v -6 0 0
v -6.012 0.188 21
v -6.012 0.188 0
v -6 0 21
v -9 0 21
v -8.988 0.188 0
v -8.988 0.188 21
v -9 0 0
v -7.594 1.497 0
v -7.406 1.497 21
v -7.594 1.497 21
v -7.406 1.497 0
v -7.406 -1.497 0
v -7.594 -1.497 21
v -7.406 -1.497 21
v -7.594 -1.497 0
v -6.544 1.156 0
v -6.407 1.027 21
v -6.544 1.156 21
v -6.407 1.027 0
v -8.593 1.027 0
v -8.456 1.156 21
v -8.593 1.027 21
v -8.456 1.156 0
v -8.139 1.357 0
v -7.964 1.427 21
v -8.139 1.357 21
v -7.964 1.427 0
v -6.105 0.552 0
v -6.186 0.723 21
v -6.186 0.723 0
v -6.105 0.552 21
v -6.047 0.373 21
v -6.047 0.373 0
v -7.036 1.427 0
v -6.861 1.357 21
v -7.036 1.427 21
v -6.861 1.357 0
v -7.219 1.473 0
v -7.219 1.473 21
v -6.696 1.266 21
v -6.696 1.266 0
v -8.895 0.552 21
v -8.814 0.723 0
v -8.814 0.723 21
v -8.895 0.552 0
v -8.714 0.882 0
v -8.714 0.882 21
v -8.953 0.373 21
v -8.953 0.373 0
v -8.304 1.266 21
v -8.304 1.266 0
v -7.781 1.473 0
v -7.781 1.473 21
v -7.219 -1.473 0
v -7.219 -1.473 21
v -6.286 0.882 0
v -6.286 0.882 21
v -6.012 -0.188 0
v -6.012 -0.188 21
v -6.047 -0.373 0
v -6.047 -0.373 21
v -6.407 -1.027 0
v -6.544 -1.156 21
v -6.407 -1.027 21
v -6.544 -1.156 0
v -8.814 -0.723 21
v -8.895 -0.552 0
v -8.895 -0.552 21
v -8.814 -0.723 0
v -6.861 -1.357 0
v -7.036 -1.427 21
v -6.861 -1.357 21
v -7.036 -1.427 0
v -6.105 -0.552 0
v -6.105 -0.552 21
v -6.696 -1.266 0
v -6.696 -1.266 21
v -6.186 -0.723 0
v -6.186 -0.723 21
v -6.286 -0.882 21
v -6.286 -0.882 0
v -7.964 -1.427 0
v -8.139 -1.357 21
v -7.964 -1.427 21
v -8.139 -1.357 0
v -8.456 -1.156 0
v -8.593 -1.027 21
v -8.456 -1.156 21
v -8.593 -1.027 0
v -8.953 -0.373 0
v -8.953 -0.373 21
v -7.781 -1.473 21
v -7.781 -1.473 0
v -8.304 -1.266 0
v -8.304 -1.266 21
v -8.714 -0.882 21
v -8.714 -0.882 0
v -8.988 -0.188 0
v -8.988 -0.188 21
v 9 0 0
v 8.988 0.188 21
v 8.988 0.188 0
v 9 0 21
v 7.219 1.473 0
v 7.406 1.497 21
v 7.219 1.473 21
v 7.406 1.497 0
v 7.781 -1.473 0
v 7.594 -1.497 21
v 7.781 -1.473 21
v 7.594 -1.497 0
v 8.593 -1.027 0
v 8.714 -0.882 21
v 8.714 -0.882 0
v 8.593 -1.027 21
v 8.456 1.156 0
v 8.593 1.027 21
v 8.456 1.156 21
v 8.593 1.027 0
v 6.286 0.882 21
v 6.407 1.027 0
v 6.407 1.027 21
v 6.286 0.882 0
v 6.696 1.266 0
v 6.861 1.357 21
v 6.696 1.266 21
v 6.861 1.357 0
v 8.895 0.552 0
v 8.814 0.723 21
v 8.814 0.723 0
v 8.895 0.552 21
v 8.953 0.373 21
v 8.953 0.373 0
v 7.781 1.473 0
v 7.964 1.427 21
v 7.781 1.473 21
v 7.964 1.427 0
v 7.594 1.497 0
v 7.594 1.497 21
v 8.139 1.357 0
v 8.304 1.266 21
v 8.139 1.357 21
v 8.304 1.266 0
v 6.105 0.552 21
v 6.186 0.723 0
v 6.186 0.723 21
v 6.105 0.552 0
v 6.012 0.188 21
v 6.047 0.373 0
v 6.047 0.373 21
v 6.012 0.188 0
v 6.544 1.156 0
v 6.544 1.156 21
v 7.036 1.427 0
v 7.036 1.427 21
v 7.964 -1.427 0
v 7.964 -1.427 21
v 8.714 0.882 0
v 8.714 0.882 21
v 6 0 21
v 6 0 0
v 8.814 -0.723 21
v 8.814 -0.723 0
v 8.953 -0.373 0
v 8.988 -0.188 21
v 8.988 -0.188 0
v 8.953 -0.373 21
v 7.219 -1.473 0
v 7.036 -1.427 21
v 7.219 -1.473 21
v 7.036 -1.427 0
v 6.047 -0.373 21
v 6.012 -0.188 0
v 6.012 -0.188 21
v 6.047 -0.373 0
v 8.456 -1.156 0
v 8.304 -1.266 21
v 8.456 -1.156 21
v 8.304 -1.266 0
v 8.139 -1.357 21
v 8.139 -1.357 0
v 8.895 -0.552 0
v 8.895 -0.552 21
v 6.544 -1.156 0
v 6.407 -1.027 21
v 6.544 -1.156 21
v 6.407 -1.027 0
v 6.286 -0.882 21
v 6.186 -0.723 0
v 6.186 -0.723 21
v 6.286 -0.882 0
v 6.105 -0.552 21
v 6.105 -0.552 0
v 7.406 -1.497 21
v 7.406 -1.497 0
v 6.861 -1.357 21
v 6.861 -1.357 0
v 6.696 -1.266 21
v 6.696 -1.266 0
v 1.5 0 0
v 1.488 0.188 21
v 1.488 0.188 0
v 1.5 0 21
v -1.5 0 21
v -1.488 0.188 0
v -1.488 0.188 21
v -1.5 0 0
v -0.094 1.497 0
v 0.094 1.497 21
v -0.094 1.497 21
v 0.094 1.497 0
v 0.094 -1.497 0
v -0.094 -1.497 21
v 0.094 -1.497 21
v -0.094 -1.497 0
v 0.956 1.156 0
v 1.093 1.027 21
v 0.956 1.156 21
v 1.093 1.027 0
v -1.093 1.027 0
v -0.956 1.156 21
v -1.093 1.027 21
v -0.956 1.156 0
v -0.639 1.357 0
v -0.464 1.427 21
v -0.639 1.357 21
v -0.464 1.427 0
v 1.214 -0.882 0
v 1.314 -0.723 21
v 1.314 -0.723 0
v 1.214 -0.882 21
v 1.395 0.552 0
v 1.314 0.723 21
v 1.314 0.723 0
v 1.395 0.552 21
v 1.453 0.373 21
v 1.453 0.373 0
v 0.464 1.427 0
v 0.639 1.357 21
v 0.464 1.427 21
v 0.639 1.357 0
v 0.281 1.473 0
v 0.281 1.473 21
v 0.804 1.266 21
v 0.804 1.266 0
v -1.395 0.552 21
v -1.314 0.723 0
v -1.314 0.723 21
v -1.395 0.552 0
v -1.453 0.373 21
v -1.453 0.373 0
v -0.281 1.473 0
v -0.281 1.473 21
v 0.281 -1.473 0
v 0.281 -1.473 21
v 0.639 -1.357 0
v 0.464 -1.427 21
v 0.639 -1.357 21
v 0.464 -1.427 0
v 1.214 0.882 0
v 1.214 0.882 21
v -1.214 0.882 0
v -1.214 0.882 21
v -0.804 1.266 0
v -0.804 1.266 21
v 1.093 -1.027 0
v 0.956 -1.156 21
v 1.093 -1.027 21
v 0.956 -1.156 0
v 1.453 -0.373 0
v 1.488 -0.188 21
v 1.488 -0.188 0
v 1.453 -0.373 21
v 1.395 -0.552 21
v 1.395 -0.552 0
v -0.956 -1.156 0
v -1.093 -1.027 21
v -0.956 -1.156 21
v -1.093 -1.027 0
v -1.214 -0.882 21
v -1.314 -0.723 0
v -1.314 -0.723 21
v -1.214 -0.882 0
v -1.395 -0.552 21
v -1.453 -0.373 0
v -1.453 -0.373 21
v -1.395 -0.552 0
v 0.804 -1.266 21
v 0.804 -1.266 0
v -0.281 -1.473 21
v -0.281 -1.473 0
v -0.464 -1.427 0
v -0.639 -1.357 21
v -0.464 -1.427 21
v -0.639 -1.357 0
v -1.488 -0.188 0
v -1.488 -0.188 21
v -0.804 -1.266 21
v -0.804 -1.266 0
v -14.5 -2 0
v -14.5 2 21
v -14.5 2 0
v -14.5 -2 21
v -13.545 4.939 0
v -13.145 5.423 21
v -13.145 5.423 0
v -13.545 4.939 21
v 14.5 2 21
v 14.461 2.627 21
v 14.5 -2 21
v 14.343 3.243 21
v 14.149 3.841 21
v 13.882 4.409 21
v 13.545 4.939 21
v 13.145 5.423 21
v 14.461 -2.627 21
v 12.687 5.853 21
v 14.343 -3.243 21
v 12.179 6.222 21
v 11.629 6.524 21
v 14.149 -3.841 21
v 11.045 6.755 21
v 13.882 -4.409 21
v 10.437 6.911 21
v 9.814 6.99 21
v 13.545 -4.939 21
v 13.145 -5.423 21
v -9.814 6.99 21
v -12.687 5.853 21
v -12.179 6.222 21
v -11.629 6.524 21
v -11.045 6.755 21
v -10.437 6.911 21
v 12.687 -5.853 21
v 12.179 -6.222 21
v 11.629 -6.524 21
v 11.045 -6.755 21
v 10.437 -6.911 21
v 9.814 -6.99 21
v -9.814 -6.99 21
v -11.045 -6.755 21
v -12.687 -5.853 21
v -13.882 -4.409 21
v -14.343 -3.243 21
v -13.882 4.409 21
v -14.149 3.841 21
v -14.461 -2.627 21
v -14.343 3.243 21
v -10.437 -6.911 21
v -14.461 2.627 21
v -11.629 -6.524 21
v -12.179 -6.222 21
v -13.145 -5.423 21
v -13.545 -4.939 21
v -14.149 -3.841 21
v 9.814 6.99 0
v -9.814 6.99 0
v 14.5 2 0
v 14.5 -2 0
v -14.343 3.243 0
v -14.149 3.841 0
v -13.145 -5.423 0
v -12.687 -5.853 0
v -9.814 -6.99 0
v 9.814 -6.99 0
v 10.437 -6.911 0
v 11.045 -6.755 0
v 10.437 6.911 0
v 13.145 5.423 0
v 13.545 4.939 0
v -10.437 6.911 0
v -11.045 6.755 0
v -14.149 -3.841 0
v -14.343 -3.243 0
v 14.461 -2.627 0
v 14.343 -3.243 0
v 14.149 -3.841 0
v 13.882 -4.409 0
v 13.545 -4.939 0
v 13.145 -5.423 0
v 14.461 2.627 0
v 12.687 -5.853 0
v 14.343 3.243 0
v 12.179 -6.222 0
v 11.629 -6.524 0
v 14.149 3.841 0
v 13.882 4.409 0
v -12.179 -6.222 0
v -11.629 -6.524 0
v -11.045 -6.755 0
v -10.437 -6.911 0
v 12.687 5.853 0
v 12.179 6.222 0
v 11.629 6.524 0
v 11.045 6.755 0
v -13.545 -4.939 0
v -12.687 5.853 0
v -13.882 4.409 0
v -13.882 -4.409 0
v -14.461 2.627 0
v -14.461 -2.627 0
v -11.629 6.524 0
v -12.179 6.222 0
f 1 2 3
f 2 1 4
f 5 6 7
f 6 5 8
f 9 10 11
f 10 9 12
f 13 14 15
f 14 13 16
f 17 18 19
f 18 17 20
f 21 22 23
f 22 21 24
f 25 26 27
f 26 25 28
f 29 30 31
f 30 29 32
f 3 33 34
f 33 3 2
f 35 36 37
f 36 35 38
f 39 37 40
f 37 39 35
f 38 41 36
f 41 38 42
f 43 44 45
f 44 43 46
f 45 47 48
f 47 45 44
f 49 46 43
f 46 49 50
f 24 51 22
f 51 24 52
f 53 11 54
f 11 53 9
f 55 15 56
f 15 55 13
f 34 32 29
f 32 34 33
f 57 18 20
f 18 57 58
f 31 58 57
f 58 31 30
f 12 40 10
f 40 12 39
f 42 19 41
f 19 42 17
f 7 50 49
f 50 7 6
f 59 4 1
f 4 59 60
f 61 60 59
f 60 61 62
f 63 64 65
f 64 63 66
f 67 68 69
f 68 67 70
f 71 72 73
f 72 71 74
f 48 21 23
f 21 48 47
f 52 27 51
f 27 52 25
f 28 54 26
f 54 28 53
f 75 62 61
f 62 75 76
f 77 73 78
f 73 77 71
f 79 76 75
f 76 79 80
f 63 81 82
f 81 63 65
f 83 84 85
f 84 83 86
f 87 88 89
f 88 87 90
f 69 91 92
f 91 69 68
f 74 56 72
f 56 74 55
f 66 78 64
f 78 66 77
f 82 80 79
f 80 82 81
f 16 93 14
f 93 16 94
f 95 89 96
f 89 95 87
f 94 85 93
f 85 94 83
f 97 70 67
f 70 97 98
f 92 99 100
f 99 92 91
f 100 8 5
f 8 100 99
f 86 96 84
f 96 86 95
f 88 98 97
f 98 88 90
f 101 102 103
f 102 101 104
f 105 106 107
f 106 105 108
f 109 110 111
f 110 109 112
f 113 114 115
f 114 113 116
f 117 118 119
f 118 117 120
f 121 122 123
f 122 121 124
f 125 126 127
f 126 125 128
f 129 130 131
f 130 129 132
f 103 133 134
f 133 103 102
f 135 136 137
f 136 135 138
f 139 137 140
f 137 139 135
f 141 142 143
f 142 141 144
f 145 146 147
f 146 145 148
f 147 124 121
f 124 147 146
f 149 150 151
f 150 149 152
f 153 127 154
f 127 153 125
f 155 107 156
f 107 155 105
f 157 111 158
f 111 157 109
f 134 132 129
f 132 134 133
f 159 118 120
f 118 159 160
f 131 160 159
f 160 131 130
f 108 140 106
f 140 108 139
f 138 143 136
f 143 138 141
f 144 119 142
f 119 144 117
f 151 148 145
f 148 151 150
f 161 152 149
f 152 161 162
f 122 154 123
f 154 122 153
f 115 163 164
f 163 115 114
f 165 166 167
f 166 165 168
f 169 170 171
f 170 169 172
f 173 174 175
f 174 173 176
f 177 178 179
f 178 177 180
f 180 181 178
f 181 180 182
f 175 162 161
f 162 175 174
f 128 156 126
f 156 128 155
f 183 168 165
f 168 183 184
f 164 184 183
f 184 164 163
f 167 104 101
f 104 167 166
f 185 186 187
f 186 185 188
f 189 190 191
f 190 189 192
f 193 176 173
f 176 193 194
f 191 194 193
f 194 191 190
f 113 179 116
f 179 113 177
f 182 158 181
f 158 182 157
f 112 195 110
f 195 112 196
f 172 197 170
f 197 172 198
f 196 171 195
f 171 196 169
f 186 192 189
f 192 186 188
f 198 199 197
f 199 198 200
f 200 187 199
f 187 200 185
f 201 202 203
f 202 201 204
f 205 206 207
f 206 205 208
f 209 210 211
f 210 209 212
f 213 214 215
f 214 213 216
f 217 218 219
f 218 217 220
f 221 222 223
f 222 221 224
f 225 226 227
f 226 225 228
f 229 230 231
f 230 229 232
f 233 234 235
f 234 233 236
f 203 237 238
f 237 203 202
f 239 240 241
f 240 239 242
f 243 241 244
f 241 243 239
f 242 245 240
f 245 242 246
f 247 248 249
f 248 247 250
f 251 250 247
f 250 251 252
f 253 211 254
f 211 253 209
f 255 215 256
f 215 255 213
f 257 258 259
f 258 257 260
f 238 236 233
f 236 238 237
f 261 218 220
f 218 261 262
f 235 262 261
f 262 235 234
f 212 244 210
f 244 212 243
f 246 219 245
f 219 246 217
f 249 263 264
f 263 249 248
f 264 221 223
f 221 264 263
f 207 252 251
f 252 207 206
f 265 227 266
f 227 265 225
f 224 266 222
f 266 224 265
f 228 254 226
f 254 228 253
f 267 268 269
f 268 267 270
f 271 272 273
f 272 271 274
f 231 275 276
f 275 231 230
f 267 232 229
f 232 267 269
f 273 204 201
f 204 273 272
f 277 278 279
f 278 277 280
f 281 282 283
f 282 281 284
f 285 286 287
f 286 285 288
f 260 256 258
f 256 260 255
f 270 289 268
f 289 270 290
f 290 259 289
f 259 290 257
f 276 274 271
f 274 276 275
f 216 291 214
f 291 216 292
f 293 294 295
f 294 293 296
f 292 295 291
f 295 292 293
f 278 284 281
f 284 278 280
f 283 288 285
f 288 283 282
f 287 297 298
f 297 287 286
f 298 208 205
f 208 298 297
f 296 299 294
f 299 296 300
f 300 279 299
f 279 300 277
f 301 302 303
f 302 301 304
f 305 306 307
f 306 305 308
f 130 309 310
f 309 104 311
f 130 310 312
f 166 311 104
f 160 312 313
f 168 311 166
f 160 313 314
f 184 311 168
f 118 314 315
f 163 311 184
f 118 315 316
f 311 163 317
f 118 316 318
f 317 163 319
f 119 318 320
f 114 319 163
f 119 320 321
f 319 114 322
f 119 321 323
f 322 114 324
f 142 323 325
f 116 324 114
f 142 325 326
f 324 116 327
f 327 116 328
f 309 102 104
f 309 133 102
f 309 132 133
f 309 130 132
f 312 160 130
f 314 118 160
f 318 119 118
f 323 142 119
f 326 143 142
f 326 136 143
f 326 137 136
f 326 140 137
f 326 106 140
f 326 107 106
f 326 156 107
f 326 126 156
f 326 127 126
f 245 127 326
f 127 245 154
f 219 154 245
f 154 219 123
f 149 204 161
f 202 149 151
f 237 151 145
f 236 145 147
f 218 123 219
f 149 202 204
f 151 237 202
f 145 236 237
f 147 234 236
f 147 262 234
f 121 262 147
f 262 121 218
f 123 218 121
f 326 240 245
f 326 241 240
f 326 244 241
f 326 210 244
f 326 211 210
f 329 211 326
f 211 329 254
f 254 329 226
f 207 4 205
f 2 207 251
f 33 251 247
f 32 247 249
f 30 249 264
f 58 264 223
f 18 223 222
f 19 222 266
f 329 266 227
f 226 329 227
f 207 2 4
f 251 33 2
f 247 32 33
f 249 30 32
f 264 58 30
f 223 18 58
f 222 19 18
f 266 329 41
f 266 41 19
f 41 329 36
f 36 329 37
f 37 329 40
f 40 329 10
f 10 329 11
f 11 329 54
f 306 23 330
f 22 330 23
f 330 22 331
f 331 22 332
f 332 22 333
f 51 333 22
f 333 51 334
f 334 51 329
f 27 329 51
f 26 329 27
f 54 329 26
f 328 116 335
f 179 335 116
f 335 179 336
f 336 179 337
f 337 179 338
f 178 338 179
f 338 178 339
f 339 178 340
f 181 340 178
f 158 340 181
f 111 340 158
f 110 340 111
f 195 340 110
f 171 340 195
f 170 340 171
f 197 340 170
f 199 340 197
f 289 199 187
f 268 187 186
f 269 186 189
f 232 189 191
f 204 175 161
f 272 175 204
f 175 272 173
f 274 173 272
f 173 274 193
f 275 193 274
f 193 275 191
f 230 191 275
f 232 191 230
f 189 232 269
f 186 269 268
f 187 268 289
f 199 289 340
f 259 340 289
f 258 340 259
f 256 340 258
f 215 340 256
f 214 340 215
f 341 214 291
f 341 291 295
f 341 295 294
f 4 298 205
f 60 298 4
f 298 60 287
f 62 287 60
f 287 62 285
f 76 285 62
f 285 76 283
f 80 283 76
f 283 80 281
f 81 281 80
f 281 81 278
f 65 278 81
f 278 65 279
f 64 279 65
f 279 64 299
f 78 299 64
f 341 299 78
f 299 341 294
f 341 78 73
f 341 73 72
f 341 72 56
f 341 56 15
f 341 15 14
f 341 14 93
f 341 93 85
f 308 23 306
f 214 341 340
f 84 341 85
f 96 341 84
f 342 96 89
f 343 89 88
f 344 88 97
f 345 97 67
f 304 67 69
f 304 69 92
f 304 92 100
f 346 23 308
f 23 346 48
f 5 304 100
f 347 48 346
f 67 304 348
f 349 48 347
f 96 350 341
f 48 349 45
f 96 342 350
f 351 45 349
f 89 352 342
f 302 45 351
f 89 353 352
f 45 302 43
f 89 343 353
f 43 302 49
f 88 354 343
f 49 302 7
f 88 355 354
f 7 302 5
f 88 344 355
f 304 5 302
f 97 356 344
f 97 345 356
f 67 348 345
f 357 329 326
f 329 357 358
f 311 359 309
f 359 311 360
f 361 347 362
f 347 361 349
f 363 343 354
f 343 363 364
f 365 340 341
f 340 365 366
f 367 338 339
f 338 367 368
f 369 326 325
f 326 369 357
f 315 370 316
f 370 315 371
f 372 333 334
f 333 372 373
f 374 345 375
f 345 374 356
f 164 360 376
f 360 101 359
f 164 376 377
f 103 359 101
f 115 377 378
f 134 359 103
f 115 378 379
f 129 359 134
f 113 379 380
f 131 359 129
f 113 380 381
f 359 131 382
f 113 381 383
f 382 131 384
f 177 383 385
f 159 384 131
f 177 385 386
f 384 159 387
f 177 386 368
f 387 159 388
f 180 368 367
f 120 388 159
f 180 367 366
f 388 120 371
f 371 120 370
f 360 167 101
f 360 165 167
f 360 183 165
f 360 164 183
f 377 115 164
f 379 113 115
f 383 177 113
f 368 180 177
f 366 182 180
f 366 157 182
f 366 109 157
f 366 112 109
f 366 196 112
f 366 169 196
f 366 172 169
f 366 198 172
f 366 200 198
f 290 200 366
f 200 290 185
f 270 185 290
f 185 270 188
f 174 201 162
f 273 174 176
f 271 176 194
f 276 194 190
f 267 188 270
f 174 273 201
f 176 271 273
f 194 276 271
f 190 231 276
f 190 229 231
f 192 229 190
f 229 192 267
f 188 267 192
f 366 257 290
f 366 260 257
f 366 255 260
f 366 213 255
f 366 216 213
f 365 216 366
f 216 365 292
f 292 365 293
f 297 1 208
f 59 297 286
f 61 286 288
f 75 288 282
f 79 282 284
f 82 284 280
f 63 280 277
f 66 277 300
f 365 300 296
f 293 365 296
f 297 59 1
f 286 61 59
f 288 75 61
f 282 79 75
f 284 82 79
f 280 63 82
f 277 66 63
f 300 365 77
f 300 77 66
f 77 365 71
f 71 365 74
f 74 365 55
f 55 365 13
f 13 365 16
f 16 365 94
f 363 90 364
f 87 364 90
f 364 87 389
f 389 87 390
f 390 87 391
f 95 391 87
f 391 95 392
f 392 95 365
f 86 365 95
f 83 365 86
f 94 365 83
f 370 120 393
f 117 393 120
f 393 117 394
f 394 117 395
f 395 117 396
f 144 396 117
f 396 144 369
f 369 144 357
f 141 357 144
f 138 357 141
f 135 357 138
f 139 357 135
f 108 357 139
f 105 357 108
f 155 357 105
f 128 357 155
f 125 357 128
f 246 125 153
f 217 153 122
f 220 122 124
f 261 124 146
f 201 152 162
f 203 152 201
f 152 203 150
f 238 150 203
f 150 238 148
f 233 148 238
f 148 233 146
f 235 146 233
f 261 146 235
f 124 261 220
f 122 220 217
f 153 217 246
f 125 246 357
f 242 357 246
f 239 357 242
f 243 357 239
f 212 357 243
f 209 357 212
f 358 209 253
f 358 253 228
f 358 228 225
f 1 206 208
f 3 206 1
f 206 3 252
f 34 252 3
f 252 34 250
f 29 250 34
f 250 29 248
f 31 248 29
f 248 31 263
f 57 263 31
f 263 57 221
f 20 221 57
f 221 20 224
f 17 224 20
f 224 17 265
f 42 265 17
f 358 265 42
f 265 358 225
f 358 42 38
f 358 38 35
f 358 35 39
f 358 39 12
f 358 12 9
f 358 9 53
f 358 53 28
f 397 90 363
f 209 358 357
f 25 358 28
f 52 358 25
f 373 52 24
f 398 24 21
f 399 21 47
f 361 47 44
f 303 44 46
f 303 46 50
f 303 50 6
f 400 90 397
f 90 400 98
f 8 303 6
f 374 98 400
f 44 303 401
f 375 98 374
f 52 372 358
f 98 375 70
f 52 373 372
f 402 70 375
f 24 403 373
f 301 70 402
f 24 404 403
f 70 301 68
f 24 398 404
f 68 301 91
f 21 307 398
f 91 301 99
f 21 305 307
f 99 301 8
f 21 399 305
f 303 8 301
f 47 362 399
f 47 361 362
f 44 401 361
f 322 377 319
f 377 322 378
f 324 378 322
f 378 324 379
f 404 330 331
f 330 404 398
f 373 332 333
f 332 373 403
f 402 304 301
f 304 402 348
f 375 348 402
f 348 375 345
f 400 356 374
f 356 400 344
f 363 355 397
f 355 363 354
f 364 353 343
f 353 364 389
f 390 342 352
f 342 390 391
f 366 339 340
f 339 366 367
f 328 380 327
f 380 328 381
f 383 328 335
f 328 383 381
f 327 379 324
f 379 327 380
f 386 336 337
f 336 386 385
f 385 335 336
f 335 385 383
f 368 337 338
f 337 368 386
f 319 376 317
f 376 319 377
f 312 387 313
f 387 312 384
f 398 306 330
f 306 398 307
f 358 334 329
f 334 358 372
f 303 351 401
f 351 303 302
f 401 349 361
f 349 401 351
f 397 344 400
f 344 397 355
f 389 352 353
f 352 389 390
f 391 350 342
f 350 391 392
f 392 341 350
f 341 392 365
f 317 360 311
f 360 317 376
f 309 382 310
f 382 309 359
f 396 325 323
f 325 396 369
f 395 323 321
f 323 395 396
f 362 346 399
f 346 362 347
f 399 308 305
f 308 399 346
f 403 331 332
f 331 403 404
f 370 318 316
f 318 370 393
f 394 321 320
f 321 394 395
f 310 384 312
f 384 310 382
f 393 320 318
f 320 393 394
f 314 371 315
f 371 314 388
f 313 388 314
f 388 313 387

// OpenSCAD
$fn = 50;


difference() {
	union() {
		hull() {
			translate(v = [-9.5000000000, 2.0000000000, 0]) {
				cylinder(h = 21, r = 5);
			}
			translate(v = [9.5000000000, 2.0000000000, 0]) {
				cylinder(h = 21, r = 5);
			}
			translate(v = [-9.5000000000, -2.0000000000, 0]) {
				cylinder(h = 21, r = 5);
			}
			translate(v = [9.5000000000, -2.0000000000, 0]) {
				cylinder(h = 21, r = 5);
			}
		}
	}
	union() {
		translate(v = [-7.5000000000, 0.0000000000, 0]) {
			translate(v = [0, 0, -100]) {
				cylinder(h = 200, r = 1.5000000000);
			}
		}
		translate(v = [7.5000000000, 0.0000000000, 0]) {
			translate(v = [0, 0, -100]) {
				cylinder(h = 200, r = 1.5000000000);
			}
		}
		translate(v = [-7.5000000000, 0.0000000000, 0]) {
			translate(v = [0, 0, -100]) {
				cylinder(h = 200, r = 1.5000000000);
			}
		}
		translate(v = [0, 0, -100]) {
			cylinder(h = 200, r = 1.5000000000);
		}
		translate(v = [7.5000000000, 0.0000000000, 0]) {
			translate(v = [0, 0, -100]) {
				cylinder(h = 200, r = 1.5000000000);
			}
		}
	}
}
